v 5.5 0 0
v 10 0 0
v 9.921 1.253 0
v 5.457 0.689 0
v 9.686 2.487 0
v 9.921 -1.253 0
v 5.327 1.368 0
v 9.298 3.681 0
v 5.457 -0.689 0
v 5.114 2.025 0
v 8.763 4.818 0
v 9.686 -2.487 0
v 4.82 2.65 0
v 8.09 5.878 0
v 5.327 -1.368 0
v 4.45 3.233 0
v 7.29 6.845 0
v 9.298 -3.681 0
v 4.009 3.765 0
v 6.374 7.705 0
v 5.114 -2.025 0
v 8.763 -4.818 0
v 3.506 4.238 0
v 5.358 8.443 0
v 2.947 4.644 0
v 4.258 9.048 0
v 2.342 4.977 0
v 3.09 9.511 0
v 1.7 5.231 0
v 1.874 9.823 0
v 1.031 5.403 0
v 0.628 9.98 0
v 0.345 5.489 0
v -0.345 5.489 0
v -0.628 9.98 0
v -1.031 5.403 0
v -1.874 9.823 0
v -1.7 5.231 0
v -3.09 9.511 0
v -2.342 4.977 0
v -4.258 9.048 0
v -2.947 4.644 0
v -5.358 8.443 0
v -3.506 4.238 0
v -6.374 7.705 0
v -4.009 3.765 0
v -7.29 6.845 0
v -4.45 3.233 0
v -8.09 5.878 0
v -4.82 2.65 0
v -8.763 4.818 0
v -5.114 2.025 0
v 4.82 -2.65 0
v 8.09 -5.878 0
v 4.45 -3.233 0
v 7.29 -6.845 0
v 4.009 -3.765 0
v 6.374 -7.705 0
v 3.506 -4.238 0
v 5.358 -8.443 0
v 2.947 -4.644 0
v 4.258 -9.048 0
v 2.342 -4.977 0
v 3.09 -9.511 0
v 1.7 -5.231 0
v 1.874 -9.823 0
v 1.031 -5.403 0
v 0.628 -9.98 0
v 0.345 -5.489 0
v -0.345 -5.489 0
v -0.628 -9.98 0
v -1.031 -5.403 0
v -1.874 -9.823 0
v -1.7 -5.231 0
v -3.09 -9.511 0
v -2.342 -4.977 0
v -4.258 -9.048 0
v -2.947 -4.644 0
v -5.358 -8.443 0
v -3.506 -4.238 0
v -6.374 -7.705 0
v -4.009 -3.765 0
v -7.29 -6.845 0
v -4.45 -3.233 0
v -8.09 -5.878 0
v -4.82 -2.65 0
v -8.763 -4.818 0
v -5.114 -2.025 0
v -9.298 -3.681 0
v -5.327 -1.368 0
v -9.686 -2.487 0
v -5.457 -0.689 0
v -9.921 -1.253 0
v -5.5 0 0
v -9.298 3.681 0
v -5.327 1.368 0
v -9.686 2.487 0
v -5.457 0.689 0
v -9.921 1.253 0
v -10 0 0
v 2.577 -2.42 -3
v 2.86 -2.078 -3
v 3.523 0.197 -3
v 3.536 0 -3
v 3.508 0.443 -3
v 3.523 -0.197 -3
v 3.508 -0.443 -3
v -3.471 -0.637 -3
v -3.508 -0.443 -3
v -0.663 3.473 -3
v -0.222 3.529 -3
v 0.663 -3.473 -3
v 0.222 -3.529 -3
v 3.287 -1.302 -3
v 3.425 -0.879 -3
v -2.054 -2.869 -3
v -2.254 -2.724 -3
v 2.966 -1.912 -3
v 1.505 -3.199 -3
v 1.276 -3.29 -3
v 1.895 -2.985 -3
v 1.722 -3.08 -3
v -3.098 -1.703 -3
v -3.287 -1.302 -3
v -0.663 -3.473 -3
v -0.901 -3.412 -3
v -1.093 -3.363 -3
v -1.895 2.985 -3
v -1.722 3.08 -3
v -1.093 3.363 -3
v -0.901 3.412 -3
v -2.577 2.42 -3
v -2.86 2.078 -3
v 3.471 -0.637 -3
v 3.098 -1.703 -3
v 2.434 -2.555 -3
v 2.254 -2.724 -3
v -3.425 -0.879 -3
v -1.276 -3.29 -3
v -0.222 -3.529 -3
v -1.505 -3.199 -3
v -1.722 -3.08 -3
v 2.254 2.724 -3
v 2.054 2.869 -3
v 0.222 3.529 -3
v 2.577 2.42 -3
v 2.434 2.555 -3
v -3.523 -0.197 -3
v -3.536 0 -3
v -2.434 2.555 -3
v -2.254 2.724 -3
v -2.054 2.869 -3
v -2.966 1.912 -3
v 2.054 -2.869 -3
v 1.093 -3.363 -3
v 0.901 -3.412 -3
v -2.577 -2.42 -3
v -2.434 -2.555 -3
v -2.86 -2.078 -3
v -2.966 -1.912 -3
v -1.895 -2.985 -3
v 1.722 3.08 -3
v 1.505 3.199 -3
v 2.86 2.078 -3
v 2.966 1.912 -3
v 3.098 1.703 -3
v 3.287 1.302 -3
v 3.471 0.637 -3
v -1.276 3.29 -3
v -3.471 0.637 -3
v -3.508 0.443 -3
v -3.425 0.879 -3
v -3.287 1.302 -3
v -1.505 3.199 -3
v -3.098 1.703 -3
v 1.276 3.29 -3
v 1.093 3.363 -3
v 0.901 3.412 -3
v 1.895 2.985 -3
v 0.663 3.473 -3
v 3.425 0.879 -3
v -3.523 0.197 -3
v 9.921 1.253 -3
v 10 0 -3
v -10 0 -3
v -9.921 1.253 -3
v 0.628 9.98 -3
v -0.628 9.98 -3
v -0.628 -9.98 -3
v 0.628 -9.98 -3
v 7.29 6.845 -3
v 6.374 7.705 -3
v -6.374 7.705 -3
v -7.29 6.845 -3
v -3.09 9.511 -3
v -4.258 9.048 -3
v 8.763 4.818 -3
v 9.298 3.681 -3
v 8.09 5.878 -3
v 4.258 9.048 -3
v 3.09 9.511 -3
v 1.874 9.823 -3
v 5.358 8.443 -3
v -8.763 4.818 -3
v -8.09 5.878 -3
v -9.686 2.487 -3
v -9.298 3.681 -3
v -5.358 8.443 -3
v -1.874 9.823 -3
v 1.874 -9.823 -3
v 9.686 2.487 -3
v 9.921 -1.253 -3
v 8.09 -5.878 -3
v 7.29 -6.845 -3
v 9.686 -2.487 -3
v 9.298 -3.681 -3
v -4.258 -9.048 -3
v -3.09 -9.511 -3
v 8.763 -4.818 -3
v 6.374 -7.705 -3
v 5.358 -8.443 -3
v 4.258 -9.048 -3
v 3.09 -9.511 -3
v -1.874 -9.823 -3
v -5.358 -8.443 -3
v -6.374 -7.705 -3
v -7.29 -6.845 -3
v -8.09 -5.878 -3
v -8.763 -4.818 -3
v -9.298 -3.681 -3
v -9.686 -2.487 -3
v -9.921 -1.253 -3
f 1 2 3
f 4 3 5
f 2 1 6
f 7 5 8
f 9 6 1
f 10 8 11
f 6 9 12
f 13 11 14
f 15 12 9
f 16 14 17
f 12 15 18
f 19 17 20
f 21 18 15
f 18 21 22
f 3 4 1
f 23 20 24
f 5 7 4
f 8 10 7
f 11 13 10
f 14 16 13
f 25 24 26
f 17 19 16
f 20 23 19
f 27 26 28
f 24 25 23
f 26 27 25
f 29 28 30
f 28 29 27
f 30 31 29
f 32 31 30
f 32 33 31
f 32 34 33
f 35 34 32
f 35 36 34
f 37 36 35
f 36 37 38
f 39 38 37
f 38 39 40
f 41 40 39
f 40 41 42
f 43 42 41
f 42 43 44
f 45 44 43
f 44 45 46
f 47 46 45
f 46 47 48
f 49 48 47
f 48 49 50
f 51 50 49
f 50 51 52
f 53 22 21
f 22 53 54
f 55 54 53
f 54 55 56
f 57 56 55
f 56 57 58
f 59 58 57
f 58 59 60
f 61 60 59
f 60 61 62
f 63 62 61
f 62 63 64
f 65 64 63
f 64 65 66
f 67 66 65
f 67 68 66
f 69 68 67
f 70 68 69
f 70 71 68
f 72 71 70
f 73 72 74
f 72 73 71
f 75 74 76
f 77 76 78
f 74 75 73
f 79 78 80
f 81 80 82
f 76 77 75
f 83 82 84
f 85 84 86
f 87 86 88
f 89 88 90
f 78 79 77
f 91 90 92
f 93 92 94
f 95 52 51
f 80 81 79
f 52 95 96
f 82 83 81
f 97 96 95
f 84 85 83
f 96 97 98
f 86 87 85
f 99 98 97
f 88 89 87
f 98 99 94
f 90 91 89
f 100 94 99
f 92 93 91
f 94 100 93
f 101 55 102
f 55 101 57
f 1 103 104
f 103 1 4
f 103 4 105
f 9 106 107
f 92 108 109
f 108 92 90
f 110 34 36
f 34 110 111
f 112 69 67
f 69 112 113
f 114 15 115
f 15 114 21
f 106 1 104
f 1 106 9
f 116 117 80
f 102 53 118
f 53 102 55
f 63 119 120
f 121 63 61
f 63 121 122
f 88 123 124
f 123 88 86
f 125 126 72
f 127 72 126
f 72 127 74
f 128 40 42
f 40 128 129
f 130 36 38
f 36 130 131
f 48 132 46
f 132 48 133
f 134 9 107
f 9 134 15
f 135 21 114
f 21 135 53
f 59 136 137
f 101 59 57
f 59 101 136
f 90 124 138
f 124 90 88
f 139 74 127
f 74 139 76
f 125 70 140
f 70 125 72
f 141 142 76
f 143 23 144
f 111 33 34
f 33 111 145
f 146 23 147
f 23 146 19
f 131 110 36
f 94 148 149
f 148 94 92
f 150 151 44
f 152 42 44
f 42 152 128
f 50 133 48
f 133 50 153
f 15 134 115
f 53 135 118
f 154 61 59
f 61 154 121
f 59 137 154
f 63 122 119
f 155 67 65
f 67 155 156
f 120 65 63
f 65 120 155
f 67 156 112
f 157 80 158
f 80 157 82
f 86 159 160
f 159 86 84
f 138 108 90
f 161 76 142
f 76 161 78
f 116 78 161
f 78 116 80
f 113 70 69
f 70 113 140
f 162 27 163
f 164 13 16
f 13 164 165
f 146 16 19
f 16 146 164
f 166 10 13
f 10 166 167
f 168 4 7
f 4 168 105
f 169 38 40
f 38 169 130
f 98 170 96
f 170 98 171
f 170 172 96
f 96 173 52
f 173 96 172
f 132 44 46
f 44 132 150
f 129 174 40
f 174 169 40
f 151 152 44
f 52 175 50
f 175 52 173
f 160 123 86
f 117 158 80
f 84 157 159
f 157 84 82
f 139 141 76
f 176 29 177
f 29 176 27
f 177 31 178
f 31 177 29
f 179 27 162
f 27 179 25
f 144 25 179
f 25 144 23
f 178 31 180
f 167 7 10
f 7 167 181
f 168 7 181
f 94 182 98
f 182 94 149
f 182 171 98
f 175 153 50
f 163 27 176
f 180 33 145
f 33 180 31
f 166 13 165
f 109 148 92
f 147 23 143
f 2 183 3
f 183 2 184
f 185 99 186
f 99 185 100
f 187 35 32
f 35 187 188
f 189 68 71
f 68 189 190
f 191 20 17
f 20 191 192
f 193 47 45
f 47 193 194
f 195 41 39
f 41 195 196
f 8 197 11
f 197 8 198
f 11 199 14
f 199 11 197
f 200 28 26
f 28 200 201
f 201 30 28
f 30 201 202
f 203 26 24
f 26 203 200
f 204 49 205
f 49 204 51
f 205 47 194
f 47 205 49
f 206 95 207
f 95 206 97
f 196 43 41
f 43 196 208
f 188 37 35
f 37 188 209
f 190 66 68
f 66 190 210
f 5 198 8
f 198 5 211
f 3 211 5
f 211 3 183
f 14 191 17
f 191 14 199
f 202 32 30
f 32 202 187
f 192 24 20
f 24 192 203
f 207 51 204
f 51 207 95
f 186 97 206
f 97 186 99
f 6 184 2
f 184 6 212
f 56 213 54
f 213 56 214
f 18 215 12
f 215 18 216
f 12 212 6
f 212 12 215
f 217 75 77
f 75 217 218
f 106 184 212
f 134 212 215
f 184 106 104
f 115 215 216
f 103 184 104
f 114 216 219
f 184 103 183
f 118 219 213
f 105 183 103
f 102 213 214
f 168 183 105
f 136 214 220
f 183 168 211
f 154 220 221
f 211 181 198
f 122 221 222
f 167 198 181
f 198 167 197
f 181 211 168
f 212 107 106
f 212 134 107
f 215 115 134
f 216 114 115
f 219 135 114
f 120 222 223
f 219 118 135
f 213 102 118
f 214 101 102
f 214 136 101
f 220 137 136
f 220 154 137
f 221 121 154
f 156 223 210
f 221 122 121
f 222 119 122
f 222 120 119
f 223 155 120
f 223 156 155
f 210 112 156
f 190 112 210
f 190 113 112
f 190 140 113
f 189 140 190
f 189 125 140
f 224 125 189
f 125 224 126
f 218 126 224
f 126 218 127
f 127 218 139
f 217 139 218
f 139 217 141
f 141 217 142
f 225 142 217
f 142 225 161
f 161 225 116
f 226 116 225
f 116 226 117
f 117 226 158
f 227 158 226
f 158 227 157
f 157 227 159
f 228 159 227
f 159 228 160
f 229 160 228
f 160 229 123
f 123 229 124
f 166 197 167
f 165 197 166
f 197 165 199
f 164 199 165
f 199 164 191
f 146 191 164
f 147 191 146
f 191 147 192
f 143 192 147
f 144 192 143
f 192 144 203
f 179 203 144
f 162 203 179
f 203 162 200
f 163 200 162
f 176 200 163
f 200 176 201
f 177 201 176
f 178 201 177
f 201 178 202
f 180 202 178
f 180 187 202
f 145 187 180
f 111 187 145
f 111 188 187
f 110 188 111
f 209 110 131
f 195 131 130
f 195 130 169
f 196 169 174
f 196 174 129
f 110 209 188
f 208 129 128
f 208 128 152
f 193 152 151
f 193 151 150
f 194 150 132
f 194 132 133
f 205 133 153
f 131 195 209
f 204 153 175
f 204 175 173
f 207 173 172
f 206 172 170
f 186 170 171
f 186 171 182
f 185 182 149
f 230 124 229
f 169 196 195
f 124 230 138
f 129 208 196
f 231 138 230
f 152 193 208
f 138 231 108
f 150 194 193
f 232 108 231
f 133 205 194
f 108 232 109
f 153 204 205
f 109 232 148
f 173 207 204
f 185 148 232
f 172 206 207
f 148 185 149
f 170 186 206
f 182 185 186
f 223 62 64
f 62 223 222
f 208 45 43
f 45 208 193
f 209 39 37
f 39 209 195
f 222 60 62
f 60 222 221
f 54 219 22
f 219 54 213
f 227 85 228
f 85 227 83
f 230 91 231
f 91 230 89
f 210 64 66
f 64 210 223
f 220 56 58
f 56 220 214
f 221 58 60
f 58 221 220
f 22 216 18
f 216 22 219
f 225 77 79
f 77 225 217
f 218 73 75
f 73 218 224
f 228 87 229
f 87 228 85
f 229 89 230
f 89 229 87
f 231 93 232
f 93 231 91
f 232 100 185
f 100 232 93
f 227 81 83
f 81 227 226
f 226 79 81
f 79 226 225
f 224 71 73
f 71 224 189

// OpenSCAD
$fn = 50;


difference() {
	union() {
		translate(v = [0, 0, -3.0000000000]) {
			cylinder(h = 3, r = 10.0000000000);
		}
		cylinder(h = 0, r = 19.0000000000);
	}
	union() {
		translate(v = [0, 0, 0]) {
			rotate(a = [0, 0, 0]) {
				difference() {
					union() {
						#translate(v = [0, 0, -3.0000000000]) {
							cylinder(h = 3, r = 2.2500000000);
						}
						#translate(v = [0, 0, -4.2000000000]) {
							cylinder(h = 4.2000000000, r = 10.0000000000, r1 = 2.7500000000, r2 = 5.5000000000);
						}
						#translate(v = [0, 0, -3.0000000000]) {
							cylinder(h = 3, r = 2.7500000000);
						}
						#translate(v = [0, 0, -3.0000000000]) {
							cylinder(h = 3, r = 2.2500000000);
						}
					}
					union();
				}
			}
		}
	}
}
